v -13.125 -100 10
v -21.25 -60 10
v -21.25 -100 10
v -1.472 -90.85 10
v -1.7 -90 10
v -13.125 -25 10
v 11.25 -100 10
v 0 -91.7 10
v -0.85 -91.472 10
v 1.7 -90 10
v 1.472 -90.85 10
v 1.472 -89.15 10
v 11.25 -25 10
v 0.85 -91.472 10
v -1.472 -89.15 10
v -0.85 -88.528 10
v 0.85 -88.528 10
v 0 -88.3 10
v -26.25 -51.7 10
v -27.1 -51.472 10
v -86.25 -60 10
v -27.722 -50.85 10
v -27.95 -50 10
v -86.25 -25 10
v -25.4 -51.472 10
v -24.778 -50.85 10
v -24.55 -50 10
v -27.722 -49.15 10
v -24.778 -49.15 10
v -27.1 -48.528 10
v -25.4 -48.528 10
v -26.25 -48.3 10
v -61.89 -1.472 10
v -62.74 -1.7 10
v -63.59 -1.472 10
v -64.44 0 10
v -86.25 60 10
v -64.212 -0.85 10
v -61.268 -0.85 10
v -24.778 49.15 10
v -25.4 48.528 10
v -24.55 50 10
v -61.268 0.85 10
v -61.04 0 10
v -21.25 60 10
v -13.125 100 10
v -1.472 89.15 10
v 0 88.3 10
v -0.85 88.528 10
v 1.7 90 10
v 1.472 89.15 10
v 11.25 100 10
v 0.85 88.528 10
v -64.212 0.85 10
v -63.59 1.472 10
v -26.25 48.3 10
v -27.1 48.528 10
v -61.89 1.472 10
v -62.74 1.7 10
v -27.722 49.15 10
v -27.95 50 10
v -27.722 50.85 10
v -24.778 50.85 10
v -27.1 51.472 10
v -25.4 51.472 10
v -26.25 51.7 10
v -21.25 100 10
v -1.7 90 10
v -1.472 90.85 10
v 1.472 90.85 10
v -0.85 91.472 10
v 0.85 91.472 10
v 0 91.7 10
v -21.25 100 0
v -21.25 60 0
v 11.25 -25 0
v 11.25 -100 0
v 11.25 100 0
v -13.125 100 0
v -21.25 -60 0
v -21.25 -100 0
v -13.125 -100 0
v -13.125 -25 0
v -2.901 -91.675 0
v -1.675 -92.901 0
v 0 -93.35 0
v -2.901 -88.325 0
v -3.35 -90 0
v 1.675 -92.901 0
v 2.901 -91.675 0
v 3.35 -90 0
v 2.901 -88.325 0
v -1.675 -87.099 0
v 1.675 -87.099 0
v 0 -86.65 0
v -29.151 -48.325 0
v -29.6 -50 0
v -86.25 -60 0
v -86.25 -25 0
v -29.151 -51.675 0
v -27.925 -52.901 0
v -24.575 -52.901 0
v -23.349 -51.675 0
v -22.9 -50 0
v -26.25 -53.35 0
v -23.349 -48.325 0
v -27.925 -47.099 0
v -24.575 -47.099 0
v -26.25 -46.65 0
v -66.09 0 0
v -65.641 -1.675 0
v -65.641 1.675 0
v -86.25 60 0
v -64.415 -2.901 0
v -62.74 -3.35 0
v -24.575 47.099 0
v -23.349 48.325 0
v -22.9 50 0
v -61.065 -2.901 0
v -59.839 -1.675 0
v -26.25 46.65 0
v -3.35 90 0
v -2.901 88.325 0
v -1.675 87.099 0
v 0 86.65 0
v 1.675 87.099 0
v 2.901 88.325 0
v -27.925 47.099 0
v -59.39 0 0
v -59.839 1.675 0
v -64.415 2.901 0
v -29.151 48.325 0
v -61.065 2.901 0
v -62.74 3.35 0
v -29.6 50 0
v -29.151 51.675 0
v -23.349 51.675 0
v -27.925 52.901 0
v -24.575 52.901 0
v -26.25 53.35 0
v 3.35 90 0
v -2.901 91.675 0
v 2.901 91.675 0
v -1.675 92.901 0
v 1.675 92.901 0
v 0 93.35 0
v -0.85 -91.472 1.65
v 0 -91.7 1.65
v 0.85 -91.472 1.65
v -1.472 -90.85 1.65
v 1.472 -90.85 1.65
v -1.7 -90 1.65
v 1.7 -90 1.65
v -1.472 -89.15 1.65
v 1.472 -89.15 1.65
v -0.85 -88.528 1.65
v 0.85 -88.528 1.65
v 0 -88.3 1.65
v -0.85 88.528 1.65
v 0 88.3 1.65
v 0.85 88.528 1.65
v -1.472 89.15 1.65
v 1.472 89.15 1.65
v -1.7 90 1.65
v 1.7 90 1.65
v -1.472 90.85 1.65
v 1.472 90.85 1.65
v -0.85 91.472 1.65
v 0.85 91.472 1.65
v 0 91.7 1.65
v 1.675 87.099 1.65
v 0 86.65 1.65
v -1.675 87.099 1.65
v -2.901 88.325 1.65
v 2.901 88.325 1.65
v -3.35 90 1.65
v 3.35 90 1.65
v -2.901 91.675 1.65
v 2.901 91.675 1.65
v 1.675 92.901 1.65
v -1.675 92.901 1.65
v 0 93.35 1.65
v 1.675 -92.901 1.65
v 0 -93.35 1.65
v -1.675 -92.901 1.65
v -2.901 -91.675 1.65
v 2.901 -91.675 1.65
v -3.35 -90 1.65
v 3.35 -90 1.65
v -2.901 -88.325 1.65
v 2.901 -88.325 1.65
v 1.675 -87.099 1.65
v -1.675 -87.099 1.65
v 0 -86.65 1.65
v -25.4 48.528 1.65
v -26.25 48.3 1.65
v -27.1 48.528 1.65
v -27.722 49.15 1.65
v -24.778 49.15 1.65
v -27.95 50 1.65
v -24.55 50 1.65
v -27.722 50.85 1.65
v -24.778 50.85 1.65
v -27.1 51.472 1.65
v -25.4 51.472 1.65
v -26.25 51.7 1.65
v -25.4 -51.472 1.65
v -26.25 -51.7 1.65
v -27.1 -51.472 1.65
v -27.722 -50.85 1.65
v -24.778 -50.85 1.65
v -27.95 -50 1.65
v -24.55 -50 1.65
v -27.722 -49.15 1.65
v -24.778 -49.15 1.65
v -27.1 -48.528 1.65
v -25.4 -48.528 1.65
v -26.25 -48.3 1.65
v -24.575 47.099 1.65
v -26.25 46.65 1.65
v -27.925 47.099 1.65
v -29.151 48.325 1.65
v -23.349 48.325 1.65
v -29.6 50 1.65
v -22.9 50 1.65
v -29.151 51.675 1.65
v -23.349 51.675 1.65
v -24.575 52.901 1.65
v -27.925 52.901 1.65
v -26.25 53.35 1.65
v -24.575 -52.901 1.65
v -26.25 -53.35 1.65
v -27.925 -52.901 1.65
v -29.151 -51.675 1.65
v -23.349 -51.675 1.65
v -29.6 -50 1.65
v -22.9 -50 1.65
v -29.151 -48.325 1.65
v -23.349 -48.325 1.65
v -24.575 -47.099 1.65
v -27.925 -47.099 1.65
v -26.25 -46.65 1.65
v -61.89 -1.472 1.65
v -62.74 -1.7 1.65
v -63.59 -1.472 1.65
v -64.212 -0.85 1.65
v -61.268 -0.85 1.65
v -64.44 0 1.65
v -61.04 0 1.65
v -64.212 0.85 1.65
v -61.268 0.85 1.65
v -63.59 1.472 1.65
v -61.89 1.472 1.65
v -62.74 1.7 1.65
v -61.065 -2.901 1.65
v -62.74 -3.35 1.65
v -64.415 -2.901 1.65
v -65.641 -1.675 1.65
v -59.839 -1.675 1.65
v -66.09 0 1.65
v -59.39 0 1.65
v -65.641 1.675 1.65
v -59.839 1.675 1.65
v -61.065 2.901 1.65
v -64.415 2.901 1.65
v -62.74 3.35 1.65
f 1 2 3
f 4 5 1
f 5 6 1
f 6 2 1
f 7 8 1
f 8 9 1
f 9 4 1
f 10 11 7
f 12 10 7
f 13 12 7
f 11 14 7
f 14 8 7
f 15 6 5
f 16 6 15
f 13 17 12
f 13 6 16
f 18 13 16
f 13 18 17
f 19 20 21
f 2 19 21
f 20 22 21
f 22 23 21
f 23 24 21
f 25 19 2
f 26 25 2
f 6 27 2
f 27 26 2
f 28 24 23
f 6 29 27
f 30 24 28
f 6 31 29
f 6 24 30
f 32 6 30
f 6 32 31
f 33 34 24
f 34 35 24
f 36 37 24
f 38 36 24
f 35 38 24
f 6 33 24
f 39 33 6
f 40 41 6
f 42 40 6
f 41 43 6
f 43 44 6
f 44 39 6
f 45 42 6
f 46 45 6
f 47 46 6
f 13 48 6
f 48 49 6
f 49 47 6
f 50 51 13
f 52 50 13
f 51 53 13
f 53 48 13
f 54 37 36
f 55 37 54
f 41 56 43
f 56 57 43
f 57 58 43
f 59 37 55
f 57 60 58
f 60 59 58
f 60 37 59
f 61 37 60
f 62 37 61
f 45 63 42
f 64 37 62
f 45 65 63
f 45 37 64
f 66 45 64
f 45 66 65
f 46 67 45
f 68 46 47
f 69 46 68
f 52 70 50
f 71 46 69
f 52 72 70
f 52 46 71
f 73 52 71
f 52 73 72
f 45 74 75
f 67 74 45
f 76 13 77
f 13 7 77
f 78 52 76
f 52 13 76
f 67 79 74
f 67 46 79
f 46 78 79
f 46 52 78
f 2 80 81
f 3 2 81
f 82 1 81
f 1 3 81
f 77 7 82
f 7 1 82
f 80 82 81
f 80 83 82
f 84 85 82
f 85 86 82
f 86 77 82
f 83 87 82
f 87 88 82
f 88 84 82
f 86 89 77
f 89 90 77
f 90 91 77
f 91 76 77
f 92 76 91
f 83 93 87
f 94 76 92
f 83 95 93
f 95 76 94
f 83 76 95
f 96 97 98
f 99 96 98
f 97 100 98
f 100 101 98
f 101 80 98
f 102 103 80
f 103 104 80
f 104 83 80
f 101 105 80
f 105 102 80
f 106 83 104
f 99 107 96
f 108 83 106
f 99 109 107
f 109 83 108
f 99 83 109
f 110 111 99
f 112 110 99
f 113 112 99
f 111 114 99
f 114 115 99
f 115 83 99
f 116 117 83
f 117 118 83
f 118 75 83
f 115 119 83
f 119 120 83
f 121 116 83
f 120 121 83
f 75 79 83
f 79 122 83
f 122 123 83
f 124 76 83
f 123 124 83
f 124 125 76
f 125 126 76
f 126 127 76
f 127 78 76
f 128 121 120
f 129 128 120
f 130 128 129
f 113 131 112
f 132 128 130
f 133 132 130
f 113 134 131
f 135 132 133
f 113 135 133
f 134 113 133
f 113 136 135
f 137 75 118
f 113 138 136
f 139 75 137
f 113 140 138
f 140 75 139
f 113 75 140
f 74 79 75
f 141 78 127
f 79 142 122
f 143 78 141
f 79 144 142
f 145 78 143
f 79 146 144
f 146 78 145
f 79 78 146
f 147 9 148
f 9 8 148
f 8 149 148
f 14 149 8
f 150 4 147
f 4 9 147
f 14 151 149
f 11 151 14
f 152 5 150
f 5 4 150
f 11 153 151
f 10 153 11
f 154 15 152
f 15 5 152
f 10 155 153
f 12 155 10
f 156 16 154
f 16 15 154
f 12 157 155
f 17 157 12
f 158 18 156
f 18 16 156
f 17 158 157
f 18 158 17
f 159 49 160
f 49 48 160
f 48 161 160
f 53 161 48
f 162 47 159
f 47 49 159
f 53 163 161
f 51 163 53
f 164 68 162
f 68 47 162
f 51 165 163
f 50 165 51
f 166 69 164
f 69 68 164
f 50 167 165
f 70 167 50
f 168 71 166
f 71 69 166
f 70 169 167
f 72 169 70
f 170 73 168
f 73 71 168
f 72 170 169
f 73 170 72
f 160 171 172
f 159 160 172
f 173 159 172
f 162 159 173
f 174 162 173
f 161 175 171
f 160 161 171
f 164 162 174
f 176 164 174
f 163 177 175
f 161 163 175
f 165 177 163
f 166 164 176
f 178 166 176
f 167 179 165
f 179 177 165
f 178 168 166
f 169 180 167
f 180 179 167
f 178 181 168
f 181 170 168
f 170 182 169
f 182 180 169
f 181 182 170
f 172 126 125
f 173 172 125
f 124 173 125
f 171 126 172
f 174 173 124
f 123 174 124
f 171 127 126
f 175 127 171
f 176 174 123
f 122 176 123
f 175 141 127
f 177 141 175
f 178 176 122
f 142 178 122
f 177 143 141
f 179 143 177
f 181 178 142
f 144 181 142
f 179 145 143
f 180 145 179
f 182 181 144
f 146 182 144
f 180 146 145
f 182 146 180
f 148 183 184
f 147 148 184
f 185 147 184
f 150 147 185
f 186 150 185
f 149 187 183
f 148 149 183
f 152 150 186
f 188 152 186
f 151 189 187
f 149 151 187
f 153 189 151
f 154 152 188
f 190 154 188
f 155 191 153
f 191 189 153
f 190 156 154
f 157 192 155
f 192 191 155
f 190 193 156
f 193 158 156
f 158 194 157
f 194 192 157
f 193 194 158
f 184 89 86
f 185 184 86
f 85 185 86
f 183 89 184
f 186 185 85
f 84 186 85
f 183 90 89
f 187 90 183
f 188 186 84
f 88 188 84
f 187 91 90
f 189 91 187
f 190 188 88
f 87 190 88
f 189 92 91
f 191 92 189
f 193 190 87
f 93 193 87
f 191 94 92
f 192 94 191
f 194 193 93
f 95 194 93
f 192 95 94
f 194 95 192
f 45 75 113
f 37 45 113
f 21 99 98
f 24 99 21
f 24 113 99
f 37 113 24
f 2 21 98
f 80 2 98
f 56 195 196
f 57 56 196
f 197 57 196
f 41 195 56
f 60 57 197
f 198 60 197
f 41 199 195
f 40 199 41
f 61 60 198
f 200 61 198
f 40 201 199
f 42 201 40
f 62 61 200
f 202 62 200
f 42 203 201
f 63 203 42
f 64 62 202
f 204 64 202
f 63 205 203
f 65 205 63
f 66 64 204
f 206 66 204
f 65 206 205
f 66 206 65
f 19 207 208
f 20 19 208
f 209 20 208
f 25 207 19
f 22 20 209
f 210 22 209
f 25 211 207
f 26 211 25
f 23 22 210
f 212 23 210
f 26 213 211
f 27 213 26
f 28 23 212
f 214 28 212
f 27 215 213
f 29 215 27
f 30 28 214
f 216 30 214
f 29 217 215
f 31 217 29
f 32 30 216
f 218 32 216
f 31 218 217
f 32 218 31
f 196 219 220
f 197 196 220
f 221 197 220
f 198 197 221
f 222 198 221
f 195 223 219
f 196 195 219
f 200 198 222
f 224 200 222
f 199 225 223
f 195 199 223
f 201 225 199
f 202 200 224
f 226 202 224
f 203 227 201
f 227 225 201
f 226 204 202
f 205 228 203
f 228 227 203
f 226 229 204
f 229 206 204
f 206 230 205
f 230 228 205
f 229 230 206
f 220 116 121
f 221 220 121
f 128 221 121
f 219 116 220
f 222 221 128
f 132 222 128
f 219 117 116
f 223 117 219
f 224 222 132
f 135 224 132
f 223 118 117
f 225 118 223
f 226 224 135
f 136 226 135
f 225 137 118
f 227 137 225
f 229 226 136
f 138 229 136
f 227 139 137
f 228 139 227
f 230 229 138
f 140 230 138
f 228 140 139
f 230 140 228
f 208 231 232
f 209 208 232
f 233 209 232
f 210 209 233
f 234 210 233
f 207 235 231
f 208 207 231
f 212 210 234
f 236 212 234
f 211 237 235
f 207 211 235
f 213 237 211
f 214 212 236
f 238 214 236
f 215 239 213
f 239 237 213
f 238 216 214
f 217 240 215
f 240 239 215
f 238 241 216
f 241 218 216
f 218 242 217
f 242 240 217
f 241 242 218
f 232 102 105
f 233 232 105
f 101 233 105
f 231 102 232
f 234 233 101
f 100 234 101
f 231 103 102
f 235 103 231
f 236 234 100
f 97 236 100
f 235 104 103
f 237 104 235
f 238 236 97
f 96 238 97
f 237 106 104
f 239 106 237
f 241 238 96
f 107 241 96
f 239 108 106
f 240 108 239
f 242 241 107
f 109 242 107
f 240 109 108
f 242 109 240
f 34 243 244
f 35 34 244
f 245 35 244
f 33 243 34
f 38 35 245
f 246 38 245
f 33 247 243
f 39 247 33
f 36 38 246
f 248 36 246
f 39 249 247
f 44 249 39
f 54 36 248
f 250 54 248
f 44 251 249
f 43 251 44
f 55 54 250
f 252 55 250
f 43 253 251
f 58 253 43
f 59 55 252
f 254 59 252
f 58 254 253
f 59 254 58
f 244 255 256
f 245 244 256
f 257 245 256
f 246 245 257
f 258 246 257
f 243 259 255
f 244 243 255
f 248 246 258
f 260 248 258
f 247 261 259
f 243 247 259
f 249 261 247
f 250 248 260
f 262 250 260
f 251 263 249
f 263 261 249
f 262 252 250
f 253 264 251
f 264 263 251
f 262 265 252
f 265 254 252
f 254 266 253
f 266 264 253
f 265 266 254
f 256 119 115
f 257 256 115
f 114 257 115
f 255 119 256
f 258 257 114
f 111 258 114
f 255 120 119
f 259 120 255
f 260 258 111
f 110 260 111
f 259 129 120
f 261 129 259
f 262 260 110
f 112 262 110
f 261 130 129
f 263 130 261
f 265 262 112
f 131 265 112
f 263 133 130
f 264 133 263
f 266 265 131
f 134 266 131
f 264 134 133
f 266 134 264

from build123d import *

# Parameters (mm, degrees)
BOSS_EXTRUDE1_DEPTH             = 10
SKETCH4_R                       = 1.7
CUT_EXTRUDE3_DEPTH              = 15
CBORE_FOR_M3_SBHCS1_D           = 3.4
CBORE_FOR_M3_SBHCS1_DEPTH       = 3.15
CBORE_FOR_M3_SBHCS1_CBORE_D     = 6.7
CBORE_FOR_M3_SBHCS1_CBORE_DEPTH = 1.65
CBORE_FOR_M3_SBHCS1_TIP         = 1.021463052
CBORE_FOR_M3_SBHCS2_D           = 3.4
CBORE_FOR_M3_SBHCS2_DEPTH       = 3.15
CBORE_FOR_M3_SBHCS2_CBORE_D     = 6.7
CBORE_FOR_M3_SBHCS2_CBORE_DEPTH = 1.65
CBORE_FOR_M3_SBHCS2_TIP         = 1.021463052
SKETCH7_W                       = 65
SKETCH7_H                       = 120
BOSS_EXTRUDE2_DEPTH             = 10
SKETCH9_W                       = 10
SKETCH9_H                       = 120
BOSS_EXTRUDE3_DEPTH             = 12
SKETCH10_W                      = 65
SKETCH10_H                      = 120
BOSS_EXTRUDE4_DEPTH             = 7
SKETCH11_R                      = 11
BOSS_EXTRUDE5_DEPTH             = 12
SKETCH13_W                      = 65
SKETCH13_H                      = 120
CUT_EXTRUDE4_DEPTH              = 19
SKETCH14_R                      = 1.7
CUT_EXTRUDE5_DEPTH              = 15
CBORE_FOR_M3_SBHCS3_D           = 3.4
CBORE_FOR_M3_SBHCS3_DEPTH       = 3.15
CBORE_FOR_M3_SBHCS3_CBORE_D     = 6.7
CBORE_FOR_M3_SBHCS3_CBORE_DEPTH = 1.65
CBORE_FOR_M3_SBHCS3_TIP         = 1.021463052
SKETCH17_R                      = 1.7
CUT_EXTRUDE6_DEPTH              = 10
CBORE_FOR_M3_SBHCS4_D           = 3.4
CBORE_FOR_M3_SBHCS4_DEPTH       = 3.15
CBORE_FOR_M3_SBHCS4_CBORE_D     = 6.7
CBORE_FOR_M3_SBHCS4_CBORE_DEPTH = 1.65
CBORE_FOR_M3_SBHCS4_TIP         = 1.021463052


with BuildPart() as part:
    # Sketch1 → Boss-Extrude1 (new body)
    with BuildSketch(Plane(origin=(0, 0, 0), x_dir=(0, 1, 0), z_dir=(0, 0, 1))):
        Polygon((-100, 11.25), (-100, 21.25), (100, 21.25), (100, 11.25), (100, -11.25), (-100, -11.25), align=None)
    extrude(amount=BOSS_EXTRUDE1_DEPTH)

    # Sketch4 → Cut-Extrude3 (cut)
    with BuildSketch(Plane.XY.offset(10)):
        with Locations((0, 90)):
            Circle(SKETCH4_R)
        with Locations((0, -90)):
            Circle(SKETCH4_R)
    extrude(amount=-CUT_EXTRUDE3_DEPTH, mode=Mode.SUBTRACT)

    # CBORE for M3 SBHCS1
    with Locations(Plane(origin=(0, 90, 0), x_dir=(-1, 0, 0), z_dir=(0, 0, -1))):
        with Locations((0, 0)):
            CounterBoreHole(CBORE_FOR_M3_SBHCS1_D / 2, CBORE_FOR_M3_SBHCS1_CBORE_D / 2, CBORE_FOR_M3_SBHCS1_CBORE_DEPTH, depth=CBORE_FOR_M3_SBHCS1_DEPTH)
            with Locations((0, 0, -(CBORE_FOR_M3_SBHCS1_DEPTH + CBORE_FOR_M3_SBHCS1_TIP / 2))):  # 118° drill point
                Cone(0, CBORE_FOR_M3_SBHCS1_D / 2, CBORE_FOR_M3_SBHCS1_TIP, mode=Mode.SUBTRACT)

    # CBORE for M3 SBHCS2
    with Locations(Plane(origin=(0, -90, 0), x_dir=(-1, 0, 0), z_dir=(0, 0, -1))):
        with Locations((0, 0)):
            CounterBoreHole(CBORE_FOR_M3_SBHCS2_D / 2, CBORE_FOR_M3_SBHCS2_CBORE_D / 2, CBORE_FOR_M3_SBHCS2_CBORE_DEPTH, depth=CBORE_FOR_M3_SBHCS2_DEPTH)
            with Locations((0, 0, -(CBORE_FOR_M3_SBHCS2_DEPTH + CBORE_FOR_M3_SBHCS2_TIP / 2))):  # 118° drill point
                Cone(0, CBORE_FOR_M3_SBHCS2_D / 2, CBORE_FOR_M3_SBHCS2_TIP, mode=Mode.SUBTRACT)

    # Sketch7 → Boss-Extrude2 (add)
    with BuildSketch(Plane(origin=(0, 0, 0), x_dir=(1, 0, 0), z_dir=(0, 0, -1))):
        with Locations((-53.75, 0)):
            Rectangle(SKETCH7_W, SKETCH7_H)
    extrude(amount=-BOSS_EXTRUDE2_DEPTH)

    # Sketch9 → Boss-Extrude3 (add)
    with BuildSketch(Plane.XY.offset(10)):
        with Locations((-26.25, 0)):
            Rectangle(SKETCH9_W, SKETCH9_H)
    extrude(amount=BOSS_EXTRUDE3_DEPTH)

    # Sketch10 → Boss-Extrude4 (add)
    with BuildSketch(Plane.XY.offset(22)):
        with Locations((-53.75, 0)):
            Rectangle(SKETCH10_W, SKETCH10_H)
    extrude(amount=BOSS_EXTRUDE4_DEPTH)

    # Sketch11 → Boss-Extrude5 (add)
    with BuildSketch(Plane(origin=(0, 0, 22), x_dir=(1, 0, 0), z_dir=(0, 0, -1))):
        with Locations((-62.74, 0)):
            Circle(SKETCH11_R)
    extrude(amount=BOSS_EXTRUDE5_DEPTH)

    # Sketch13 → Cut-Extrude4 (cut)
    with BuildSketch(Plane.XY.offset(29)):
        with Locations((-53.75, 0)):
            Rectangle(SKETCH13_W, SKETCH13_H)
    extrude(amount=-CUT_EXTRUDE4_DEPTH, mode=Mode.SUBTRACT)

    # Sketch14 → Cut-Extrude5 (cut)
    with BuildSketch(Plane(origin=(0, 0, 0), x_dir=(1, 0, 0), z_dir=(0, 0, -1))):
        with Locations((-26.25, 50)):
            Circle(SKETCH14_R)
        with Locations((-26.25, -50)):
            Circle(SKETCH14_R)
    extrude(amount=-CUT_EXTRUDE5_DEPTH, mode=Mode.SUBTRACT)

    # CBORE for M3 SBHCS3
    with Locations(Plane(origin=(-26.25, -50, 0), x_dir=(-1, 0, 0), z_dir=(0, 0, -1))):
        with Locations((0, 0), (0, 100)):
            CounterBoreHole(CBORE_FOR_M3_SBHCS3_D / 2, CBORE_FOR_M3_SBHCS3_CBORE_D / 2, CBORE_FOR_M3_SBHCS3_CBORE_DEPTH, depth=CBORE_FOR_M3_SBHCS3_DEPTH)
            with Locations((0, 0, -(CBORE_FOR_M3_SBHCS3_DEPTH + CBORE_FOR_M3_SBHCS3_TIP / 2))):  # 118° drill point
                Cone(0, CBORE_FOR_M3_SBHCS3_D / 2, CBORE_FOR_M3_SBHCS3_TIP, mode=Mode.SUBTRACT)

    # Sketch17 → Cut-Extrude6 (cut)
    with BuildSketch(Plane(origin=(0, 0, 0), x_dir=(1, 0, 0), z_dir=(0, 0, -1))):
        with Locations((-62.74, 0)):
            Circle(SKETCH17_R)
    extrude(amount=-CUT_EXTRUDE6_DEPTH, mode=Mode.SUBTRACT)

    # CBORE for M3 SBHCS4
    with Locations(Plane(origin=(-62.74, 0, 0), x_dir=(-1, 0, 0), z_dir=(0, 0, -1))):
        with Locations((0, 0)):
            CounterBoreHole(CBORE_FOR_M3_SBHCS4_D / 2, CBORE_FOR_M3_SBHCS4_CBORE_D / 2, CBORE_FOR_M3_SBHCS4_CBORE_DEPTH, depth=CBORE_FOR_M3_SBHCS4_DEPTH)
            with Locations((0, 0, -(CBORE_FOR_M3_SBHCS4_DEPTH + CBORE_FOR_M3_SBHCS4_TIP / 2))):  # 118° drill point
                Cone(0, CBORE_FOR_M3_SBHCS4_D / 2, CBORE_FOR_M3_SBHCS4_TIP, mode=Mode.SUBTRACT)


solid = part.part
